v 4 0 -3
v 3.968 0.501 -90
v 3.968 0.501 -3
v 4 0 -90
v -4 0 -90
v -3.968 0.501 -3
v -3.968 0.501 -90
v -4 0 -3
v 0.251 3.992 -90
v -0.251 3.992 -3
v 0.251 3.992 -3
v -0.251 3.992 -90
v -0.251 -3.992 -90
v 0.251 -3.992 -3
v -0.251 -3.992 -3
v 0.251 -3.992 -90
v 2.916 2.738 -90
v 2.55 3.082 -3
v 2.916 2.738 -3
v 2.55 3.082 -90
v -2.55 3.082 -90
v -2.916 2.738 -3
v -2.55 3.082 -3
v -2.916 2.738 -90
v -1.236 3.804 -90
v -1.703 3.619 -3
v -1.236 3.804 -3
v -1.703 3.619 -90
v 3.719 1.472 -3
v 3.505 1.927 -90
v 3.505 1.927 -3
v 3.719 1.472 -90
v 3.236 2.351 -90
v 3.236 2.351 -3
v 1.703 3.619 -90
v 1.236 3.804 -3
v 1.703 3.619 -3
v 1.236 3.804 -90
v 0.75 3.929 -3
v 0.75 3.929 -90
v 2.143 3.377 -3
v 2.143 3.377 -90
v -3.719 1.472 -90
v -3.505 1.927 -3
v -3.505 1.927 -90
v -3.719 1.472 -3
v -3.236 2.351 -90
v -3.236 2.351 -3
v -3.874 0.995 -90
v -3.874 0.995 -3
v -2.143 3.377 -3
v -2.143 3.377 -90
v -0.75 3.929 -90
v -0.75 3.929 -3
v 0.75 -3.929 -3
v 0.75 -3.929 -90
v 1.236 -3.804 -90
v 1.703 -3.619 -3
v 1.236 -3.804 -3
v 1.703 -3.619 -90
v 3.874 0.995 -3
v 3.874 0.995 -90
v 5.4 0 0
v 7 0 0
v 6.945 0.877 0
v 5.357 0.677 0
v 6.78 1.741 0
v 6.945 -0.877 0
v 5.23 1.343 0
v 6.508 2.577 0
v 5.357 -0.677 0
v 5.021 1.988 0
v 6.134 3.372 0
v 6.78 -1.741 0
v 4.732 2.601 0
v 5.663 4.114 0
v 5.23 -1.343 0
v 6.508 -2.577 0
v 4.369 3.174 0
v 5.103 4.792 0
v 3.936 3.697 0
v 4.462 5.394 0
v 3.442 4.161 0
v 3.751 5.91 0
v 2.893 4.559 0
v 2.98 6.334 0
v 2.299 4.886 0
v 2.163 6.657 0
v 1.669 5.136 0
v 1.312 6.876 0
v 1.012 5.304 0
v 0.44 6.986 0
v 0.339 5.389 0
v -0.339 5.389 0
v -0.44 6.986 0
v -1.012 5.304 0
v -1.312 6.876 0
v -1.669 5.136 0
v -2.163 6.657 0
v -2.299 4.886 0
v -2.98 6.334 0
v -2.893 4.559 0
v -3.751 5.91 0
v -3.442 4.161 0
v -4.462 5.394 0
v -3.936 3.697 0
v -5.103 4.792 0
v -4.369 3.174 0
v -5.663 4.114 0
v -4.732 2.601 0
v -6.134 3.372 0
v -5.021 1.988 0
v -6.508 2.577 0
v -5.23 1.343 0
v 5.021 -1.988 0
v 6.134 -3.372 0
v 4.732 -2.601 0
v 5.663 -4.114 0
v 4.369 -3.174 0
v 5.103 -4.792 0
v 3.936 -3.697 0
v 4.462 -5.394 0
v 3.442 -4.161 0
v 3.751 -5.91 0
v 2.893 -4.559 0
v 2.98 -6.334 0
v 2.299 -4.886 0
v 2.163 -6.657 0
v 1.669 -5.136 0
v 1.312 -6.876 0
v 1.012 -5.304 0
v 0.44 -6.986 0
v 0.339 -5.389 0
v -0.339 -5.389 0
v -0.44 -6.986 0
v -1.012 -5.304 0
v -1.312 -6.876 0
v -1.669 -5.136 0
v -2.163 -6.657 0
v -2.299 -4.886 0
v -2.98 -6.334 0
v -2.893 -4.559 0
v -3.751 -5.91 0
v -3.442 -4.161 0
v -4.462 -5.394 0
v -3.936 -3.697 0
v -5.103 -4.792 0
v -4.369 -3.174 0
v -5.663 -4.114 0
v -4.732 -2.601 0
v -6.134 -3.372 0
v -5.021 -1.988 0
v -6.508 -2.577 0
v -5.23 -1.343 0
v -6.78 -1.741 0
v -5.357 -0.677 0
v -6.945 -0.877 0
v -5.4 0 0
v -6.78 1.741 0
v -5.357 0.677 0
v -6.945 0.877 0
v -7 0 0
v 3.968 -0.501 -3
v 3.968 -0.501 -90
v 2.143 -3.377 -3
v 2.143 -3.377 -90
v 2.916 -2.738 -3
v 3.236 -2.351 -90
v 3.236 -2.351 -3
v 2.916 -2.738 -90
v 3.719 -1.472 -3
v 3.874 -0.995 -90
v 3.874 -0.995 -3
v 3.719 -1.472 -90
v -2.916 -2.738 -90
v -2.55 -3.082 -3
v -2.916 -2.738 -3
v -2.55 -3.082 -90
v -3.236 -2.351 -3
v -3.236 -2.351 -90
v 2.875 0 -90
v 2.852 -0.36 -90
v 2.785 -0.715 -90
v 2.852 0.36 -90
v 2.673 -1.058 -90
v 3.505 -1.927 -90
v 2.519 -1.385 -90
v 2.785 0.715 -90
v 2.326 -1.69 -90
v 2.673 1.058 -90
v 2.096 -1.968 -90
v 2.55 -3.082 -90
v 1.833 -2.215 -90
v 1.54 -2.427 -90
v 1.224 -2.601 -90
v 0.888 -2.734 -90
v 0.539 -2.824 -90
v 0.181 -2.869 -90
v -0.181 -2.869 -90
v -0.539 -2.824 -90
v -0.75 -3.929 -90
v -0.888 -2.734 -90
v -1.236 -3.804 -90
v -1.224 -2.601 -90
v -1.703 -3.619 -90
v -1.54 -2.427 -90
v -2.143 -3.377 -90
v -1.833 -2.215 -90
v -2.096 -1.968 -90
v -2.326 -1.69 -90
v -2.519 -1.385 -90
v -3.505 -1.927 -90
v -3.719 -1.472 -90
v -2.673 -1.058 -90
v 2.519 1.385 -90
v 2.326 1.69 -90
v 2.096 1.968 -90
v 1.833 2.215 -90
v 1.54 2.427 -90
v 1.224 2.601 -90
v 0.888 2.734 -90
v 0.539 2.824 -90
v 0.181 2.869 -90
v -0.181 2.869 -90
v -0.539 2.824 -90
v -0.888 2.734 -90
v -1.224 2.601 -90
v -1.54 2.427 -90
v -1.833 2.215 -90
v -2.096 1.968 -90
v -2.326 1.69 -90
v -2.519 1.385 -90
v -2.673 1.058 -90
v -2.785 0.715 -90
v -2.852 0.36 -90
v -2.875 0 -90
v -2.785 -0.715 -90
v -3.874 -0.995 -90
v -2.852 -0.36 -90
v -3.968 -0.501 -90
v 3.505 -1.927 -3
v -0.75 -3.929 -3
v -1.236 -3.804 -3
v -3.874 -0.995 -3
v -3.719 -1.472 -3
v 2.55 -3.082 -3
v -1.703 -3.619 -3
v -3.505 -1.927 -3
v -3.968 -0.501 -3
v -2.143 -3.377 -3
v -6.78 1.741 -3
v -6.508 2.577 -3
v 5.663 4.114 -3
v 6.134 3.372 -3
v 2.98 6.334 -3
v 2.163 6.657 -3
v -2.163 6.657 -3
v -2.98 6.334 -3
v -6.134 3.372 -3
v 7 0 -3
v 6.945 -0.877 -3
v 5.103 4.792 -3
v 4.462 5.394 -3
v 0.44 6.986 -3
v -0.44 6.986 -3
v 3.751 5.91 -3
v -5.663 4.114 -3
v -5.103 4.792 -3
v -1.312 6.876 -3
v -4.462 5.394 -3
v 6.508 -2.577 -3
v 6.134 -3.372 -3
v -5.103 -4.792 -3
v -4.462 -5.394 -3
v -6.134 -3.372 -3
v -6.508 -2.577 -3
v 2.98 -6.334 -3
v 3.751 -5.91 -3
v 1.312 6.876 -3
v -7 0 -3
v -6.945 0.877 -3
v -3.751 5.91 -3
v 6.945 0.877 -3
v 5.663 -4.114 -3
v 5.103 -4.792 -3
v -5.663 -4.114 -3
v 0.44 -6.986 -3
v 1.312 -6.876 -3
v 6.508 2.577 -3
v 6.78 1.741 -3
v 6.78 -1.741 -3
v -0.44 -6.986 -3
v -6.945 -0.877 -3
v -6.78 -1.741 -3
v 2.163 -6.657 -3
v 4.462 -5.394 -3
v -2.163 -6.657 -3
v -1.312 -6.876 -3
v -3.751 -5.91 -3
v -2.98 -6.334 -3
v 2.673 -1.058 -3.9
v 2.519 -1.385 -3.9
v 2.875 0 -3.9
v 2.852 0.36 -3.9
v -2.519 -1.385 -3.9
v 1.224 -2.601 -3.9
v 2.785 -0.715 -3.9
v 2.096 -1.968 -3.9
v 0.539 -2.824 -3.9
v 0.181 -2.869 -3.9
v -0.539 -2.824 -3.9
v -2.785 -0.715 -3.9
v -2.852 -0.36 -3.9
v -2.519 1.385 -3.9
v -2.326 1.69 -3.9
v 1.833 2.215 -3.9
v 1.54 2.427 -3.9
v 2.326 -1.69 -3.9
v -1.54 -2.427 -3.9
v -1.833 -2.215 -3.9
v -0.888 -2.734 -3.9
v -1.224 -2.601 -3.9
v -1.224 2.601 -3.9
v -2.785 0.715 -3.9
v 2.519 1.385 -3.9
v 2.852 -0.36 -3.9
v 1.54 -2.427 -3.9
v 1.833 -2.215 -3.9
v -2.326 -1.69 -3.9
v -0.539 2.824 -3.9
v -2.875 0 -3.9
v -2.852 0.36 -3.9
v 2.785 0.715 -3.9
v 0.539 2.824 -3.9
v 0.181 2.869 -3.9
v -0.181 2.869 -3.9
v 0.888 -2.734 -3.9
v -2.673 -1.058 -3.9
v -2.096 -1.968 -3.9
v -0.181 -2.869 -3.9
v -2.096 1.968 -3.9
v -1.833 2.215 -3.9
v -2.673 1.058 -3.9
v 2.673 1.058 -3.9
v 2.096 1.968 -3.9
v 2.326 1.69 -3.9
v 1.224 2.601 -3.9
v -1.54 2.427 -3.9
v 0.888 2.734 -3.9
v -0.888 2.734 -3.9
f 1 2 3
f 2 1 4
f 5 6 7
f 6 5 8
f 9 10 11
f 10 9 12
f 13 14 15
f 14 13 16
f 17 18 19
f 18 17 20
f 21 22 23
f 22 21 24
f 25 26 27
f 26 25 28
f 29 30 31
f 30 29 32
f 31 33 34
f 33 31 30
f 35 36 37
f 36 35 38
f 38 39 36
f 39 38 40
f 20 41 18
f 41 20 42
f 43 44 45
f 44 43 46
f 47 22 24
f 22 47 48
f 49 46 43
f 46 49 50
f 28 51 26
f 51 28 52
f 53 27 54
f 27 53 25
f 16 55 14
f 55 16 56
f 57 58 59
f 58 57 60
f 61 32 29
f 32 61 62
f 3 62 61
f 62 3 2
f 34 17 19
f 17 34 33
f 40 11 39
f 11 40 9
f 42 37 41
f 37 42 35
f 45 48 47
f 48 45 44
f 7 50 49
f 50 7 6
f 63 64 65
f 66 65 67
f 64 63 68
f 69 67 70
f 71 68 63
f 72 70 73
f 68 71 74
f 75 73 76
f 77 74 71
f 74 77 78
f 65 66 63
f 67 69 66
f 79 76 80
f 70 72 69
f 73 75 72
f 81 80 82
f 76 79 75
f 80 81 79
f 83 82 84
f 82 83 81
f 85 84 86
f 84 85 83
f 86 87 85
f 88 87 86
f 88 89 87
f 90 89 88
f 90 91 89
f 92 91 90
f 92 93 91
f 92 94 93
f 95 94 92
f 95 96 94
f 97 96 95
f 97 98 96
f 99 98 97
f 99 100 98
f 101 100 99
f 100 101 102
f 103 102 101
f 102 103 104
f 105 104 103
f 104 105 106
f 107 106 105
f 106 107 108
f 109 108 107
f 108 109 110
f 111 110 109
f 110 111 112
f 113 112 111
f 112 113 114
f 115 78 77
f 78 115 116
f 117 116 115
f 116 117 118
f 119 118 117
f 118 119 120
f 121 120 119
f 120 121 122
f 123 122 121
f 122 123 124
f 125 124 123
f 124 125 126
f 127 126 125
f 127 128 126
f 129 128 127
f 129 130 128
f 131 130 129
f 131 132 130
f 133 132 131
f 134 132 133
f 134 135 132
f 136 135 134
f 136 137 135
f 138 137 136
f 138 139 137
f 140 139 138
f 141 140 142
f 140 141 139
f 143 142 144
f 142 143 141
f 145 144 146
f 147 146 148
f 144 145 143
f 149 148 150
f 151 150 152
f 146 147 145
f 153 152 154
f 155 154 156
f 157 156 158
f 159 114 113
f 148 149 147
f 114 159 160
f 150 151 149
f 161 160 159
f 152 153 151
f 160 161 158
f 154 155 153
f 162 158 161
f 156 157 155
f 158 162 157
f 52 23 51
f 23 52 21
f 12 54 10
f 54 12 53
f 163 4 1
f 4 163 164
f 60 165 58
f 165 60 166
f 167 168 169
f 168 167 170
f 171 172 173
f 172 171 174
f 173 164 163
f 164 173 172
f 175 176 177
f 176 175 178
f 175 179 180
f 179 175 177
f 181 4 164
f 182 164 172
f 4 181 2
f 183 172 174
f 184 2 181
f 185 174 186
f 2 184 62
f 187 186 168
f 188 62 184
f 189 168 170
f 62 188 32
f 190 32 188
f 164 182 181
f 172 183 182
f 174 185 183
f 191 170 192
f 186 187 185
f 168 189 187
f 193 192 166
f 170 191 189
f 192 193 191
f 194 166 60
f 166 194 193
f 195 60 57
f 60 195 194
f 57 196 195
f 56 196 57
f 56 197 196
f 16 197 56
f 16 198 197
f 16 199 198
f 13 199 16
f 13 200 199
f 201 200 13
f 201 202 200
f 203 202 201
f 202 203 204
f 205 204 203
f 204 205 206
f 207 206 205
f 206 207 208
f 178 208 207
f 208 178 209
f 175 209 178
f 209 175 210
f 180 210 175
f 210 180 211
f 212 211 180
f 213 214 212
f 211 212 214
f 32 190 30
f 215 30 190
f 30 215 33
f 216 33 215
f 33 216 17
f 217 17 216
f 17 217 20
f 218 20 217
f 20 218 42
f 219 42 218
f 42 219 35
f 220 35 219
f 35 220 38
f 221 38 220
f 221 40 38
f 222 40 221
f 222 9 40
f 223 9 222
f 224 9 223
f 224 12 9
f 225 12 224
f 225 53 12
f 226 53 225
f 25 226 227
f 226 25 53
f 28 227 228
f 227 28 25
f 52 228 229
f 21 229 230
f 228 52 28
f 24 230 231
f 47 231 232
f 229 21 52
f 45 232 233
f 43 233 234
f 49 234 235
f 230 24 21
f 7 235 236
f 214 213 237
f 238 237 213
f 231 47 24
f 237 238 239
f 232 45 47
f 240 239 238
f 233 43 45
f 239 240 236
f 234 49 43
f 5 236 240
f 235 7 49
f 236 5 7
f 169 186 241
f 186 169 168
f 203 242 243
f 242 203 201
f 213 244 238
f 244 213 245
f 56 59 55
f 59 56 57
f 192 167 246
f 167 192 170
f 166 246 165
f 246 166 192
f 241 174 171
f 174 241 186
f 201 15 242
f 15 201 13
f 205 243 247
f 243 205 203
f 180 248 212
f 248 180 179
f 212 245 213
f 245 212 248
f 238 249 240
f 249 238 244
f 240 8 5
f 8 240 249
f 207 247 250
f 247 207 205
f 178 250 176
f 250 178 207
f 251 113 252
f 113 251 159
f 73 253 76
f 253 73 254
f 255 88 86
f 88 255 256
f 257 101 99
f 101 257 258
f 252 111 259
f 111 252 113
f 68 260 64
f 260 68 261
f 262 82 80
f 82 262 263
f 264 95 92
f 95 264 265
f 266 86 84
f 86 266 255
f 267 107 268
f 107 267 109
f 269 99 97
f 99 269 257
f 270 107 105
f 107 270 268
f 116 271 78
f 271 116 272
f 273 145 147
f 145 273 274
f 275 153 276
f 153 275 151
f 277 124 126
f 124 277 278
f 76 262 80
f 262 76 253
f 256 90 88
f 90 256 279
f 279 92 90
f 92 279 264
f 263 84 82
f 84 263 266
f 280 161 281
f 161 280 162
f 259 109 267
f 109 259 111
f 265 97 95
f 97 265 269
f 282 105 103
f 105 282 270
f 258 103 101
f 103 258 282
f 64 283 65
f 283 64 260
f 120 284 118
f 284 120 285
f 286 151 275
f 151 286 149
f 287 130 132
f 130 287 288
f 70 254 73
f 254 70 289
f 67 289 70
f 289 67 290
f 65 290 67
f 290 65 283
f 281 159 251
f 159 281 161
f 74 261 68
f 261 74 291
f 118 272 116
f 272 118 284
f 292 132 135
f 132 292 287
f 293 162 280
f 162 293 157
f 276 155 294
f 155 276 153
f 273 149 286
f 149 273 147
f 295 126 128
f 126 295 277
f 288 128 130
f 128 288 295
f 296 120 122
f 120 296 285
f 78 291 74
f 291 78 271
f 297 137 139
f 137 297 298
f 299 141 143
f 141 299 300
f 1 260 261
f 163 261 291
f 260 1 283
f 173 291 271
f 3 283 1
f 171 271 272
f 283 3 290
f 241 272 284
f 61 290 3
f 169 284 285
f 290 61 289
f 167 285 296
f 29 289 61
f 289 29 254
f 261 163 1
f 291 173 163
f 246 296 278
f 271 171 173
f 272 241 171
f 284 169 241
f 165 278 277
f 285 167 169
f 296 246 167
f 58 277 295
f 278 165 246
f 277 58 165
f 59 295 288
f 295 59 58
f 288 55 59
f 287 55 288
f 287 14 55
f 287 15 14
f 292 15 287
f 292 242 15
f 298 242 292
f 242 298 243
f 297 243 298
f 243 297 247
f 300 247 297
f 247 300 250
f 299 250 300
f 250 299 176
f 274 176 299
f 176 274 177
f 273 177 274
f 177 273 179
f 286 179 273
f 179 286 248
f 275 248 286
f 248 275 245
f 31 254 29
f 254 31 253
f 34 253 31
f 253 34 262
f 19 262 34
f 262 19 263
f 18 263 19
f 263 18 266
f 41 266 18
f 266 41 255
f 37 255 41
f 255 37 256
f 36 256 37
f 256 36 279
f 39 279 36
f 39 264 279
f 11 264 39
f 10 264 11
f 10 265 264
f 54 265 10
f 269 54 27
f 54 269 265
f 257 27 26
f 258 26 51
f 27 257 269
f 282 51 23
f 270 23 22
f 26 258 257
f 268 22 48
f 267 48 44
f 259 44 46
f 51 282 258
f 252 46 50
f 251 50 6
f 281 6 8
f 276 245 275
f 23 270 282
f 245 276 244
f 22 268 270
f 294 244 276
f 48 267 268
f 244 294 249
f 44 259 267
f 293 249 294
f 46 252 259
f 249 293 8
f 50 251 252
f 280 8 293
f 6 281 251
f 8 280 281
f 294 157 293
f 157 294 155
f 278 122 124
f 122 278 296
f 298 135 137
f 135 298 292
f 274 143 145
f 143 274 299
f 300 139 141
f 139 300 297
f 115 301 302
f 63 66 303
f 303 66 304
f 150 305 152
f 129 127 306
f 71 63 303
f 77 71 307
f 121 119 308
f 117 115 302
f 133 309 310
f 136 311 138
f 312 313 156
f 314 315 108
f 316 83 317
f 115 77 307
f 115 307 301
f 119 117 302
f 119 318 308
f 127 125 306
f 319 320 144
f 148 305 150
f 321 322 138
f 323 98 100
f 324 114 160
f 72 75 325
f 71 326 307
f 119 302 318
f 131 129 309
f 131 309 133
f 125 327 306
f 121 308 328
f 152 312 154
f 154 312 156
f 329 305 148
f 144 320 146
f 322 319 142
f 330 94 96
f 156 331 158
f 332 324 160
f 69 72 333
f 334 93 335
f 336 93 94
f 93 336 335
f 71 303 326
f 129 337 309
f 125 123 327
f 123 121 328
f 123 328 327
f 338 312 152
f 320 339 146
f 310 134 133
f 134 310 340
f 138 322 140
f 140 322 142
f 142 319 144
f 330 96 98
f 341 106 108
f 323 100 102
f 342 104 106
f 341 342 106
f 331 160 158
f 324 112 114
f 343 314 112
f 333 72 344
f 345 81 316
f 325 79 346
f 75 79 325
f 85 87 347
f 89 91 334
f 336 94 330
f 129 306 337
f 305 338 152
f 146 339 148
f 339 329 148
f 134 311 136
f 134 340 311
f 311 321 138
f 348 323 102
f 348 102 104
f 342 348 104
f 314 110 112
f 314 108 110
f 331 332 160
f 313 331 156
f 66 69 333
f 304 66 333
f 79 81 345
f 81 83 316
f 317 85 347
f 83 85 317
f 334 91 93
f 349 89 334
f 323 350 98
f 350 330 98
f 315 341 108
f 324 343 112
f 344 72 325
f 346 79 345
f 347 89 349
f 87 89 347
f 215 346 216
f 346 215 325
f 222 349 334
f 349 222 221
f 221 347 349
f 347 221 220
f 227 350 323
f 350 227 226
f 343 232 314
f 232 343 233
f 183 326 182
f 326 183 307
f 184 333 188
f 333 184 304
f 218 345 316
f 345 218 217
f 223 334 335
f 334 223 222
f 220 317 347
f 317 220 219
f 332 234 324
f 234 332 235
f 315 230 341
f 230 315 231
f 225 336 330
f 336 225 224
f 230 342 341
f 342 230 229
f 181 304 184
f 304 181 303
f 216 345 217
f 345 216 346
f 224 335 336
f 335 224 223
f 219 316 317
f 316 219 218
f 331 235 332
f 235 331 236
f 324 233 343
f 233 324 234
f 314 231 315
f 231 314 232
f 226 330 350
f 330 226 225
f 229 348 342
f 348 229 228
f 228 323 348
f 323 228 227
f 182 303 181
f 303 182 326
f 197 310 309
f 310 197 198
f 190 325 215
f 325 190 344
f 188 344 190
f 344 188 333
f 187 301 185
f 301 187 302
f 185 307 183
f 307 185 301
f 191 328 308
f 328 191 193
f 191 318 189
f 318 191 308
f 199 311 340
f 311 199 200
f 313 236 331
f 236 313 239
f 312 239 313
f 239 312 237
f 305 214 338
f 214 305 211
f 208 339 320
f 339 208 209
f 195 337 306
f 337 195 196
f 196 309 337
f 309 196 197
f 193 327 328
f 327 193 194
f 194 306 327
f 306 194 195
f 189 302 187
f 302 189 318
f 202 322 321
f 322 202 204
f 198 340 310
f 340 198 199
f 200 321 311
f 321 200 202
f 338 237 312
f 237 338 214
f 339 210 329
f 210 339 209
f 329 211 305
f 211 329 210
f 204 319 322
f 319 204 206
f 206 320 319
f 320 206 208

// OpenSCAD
$fn = 50;


difference() {
	union() {
		translate(v = [0, 0, -90.0000000000]) {
			cylinder(h = 90, r = 4.0000000000);
		}
		translate(v = [0, 0, -3.0000000000]) {
			cylinder(h = 3, r = 7.0000000000);
		}
	}
	union() {
		translate(v = [0, 0, 0]) {
			rotate(a = [0, 0, 0]) {
				difference() {
					union() {
						#translate(v = [0, 0, -90.0000000000]) {
							cylinder(h = 90, r = 2.6000000000);
						}
						#translate(v = [0, 0, -3.9000000000]) {
							cylinder(h = 3.9000000000, r = 4.0000000000, r1 = 2.8750000000, r2 = 5.4000000000);
						}
						#translate(v = [0, 0, -90.0000000000]) {
							cylinder(h = 90, r = 2.8750000000);
						}
						#translate(v = [0, 0, -90.0000000000]) {
							cylinder(h = 90, r = 2.6000000000);
						}
					}
					union();
				}
			}
		}
	}
}
